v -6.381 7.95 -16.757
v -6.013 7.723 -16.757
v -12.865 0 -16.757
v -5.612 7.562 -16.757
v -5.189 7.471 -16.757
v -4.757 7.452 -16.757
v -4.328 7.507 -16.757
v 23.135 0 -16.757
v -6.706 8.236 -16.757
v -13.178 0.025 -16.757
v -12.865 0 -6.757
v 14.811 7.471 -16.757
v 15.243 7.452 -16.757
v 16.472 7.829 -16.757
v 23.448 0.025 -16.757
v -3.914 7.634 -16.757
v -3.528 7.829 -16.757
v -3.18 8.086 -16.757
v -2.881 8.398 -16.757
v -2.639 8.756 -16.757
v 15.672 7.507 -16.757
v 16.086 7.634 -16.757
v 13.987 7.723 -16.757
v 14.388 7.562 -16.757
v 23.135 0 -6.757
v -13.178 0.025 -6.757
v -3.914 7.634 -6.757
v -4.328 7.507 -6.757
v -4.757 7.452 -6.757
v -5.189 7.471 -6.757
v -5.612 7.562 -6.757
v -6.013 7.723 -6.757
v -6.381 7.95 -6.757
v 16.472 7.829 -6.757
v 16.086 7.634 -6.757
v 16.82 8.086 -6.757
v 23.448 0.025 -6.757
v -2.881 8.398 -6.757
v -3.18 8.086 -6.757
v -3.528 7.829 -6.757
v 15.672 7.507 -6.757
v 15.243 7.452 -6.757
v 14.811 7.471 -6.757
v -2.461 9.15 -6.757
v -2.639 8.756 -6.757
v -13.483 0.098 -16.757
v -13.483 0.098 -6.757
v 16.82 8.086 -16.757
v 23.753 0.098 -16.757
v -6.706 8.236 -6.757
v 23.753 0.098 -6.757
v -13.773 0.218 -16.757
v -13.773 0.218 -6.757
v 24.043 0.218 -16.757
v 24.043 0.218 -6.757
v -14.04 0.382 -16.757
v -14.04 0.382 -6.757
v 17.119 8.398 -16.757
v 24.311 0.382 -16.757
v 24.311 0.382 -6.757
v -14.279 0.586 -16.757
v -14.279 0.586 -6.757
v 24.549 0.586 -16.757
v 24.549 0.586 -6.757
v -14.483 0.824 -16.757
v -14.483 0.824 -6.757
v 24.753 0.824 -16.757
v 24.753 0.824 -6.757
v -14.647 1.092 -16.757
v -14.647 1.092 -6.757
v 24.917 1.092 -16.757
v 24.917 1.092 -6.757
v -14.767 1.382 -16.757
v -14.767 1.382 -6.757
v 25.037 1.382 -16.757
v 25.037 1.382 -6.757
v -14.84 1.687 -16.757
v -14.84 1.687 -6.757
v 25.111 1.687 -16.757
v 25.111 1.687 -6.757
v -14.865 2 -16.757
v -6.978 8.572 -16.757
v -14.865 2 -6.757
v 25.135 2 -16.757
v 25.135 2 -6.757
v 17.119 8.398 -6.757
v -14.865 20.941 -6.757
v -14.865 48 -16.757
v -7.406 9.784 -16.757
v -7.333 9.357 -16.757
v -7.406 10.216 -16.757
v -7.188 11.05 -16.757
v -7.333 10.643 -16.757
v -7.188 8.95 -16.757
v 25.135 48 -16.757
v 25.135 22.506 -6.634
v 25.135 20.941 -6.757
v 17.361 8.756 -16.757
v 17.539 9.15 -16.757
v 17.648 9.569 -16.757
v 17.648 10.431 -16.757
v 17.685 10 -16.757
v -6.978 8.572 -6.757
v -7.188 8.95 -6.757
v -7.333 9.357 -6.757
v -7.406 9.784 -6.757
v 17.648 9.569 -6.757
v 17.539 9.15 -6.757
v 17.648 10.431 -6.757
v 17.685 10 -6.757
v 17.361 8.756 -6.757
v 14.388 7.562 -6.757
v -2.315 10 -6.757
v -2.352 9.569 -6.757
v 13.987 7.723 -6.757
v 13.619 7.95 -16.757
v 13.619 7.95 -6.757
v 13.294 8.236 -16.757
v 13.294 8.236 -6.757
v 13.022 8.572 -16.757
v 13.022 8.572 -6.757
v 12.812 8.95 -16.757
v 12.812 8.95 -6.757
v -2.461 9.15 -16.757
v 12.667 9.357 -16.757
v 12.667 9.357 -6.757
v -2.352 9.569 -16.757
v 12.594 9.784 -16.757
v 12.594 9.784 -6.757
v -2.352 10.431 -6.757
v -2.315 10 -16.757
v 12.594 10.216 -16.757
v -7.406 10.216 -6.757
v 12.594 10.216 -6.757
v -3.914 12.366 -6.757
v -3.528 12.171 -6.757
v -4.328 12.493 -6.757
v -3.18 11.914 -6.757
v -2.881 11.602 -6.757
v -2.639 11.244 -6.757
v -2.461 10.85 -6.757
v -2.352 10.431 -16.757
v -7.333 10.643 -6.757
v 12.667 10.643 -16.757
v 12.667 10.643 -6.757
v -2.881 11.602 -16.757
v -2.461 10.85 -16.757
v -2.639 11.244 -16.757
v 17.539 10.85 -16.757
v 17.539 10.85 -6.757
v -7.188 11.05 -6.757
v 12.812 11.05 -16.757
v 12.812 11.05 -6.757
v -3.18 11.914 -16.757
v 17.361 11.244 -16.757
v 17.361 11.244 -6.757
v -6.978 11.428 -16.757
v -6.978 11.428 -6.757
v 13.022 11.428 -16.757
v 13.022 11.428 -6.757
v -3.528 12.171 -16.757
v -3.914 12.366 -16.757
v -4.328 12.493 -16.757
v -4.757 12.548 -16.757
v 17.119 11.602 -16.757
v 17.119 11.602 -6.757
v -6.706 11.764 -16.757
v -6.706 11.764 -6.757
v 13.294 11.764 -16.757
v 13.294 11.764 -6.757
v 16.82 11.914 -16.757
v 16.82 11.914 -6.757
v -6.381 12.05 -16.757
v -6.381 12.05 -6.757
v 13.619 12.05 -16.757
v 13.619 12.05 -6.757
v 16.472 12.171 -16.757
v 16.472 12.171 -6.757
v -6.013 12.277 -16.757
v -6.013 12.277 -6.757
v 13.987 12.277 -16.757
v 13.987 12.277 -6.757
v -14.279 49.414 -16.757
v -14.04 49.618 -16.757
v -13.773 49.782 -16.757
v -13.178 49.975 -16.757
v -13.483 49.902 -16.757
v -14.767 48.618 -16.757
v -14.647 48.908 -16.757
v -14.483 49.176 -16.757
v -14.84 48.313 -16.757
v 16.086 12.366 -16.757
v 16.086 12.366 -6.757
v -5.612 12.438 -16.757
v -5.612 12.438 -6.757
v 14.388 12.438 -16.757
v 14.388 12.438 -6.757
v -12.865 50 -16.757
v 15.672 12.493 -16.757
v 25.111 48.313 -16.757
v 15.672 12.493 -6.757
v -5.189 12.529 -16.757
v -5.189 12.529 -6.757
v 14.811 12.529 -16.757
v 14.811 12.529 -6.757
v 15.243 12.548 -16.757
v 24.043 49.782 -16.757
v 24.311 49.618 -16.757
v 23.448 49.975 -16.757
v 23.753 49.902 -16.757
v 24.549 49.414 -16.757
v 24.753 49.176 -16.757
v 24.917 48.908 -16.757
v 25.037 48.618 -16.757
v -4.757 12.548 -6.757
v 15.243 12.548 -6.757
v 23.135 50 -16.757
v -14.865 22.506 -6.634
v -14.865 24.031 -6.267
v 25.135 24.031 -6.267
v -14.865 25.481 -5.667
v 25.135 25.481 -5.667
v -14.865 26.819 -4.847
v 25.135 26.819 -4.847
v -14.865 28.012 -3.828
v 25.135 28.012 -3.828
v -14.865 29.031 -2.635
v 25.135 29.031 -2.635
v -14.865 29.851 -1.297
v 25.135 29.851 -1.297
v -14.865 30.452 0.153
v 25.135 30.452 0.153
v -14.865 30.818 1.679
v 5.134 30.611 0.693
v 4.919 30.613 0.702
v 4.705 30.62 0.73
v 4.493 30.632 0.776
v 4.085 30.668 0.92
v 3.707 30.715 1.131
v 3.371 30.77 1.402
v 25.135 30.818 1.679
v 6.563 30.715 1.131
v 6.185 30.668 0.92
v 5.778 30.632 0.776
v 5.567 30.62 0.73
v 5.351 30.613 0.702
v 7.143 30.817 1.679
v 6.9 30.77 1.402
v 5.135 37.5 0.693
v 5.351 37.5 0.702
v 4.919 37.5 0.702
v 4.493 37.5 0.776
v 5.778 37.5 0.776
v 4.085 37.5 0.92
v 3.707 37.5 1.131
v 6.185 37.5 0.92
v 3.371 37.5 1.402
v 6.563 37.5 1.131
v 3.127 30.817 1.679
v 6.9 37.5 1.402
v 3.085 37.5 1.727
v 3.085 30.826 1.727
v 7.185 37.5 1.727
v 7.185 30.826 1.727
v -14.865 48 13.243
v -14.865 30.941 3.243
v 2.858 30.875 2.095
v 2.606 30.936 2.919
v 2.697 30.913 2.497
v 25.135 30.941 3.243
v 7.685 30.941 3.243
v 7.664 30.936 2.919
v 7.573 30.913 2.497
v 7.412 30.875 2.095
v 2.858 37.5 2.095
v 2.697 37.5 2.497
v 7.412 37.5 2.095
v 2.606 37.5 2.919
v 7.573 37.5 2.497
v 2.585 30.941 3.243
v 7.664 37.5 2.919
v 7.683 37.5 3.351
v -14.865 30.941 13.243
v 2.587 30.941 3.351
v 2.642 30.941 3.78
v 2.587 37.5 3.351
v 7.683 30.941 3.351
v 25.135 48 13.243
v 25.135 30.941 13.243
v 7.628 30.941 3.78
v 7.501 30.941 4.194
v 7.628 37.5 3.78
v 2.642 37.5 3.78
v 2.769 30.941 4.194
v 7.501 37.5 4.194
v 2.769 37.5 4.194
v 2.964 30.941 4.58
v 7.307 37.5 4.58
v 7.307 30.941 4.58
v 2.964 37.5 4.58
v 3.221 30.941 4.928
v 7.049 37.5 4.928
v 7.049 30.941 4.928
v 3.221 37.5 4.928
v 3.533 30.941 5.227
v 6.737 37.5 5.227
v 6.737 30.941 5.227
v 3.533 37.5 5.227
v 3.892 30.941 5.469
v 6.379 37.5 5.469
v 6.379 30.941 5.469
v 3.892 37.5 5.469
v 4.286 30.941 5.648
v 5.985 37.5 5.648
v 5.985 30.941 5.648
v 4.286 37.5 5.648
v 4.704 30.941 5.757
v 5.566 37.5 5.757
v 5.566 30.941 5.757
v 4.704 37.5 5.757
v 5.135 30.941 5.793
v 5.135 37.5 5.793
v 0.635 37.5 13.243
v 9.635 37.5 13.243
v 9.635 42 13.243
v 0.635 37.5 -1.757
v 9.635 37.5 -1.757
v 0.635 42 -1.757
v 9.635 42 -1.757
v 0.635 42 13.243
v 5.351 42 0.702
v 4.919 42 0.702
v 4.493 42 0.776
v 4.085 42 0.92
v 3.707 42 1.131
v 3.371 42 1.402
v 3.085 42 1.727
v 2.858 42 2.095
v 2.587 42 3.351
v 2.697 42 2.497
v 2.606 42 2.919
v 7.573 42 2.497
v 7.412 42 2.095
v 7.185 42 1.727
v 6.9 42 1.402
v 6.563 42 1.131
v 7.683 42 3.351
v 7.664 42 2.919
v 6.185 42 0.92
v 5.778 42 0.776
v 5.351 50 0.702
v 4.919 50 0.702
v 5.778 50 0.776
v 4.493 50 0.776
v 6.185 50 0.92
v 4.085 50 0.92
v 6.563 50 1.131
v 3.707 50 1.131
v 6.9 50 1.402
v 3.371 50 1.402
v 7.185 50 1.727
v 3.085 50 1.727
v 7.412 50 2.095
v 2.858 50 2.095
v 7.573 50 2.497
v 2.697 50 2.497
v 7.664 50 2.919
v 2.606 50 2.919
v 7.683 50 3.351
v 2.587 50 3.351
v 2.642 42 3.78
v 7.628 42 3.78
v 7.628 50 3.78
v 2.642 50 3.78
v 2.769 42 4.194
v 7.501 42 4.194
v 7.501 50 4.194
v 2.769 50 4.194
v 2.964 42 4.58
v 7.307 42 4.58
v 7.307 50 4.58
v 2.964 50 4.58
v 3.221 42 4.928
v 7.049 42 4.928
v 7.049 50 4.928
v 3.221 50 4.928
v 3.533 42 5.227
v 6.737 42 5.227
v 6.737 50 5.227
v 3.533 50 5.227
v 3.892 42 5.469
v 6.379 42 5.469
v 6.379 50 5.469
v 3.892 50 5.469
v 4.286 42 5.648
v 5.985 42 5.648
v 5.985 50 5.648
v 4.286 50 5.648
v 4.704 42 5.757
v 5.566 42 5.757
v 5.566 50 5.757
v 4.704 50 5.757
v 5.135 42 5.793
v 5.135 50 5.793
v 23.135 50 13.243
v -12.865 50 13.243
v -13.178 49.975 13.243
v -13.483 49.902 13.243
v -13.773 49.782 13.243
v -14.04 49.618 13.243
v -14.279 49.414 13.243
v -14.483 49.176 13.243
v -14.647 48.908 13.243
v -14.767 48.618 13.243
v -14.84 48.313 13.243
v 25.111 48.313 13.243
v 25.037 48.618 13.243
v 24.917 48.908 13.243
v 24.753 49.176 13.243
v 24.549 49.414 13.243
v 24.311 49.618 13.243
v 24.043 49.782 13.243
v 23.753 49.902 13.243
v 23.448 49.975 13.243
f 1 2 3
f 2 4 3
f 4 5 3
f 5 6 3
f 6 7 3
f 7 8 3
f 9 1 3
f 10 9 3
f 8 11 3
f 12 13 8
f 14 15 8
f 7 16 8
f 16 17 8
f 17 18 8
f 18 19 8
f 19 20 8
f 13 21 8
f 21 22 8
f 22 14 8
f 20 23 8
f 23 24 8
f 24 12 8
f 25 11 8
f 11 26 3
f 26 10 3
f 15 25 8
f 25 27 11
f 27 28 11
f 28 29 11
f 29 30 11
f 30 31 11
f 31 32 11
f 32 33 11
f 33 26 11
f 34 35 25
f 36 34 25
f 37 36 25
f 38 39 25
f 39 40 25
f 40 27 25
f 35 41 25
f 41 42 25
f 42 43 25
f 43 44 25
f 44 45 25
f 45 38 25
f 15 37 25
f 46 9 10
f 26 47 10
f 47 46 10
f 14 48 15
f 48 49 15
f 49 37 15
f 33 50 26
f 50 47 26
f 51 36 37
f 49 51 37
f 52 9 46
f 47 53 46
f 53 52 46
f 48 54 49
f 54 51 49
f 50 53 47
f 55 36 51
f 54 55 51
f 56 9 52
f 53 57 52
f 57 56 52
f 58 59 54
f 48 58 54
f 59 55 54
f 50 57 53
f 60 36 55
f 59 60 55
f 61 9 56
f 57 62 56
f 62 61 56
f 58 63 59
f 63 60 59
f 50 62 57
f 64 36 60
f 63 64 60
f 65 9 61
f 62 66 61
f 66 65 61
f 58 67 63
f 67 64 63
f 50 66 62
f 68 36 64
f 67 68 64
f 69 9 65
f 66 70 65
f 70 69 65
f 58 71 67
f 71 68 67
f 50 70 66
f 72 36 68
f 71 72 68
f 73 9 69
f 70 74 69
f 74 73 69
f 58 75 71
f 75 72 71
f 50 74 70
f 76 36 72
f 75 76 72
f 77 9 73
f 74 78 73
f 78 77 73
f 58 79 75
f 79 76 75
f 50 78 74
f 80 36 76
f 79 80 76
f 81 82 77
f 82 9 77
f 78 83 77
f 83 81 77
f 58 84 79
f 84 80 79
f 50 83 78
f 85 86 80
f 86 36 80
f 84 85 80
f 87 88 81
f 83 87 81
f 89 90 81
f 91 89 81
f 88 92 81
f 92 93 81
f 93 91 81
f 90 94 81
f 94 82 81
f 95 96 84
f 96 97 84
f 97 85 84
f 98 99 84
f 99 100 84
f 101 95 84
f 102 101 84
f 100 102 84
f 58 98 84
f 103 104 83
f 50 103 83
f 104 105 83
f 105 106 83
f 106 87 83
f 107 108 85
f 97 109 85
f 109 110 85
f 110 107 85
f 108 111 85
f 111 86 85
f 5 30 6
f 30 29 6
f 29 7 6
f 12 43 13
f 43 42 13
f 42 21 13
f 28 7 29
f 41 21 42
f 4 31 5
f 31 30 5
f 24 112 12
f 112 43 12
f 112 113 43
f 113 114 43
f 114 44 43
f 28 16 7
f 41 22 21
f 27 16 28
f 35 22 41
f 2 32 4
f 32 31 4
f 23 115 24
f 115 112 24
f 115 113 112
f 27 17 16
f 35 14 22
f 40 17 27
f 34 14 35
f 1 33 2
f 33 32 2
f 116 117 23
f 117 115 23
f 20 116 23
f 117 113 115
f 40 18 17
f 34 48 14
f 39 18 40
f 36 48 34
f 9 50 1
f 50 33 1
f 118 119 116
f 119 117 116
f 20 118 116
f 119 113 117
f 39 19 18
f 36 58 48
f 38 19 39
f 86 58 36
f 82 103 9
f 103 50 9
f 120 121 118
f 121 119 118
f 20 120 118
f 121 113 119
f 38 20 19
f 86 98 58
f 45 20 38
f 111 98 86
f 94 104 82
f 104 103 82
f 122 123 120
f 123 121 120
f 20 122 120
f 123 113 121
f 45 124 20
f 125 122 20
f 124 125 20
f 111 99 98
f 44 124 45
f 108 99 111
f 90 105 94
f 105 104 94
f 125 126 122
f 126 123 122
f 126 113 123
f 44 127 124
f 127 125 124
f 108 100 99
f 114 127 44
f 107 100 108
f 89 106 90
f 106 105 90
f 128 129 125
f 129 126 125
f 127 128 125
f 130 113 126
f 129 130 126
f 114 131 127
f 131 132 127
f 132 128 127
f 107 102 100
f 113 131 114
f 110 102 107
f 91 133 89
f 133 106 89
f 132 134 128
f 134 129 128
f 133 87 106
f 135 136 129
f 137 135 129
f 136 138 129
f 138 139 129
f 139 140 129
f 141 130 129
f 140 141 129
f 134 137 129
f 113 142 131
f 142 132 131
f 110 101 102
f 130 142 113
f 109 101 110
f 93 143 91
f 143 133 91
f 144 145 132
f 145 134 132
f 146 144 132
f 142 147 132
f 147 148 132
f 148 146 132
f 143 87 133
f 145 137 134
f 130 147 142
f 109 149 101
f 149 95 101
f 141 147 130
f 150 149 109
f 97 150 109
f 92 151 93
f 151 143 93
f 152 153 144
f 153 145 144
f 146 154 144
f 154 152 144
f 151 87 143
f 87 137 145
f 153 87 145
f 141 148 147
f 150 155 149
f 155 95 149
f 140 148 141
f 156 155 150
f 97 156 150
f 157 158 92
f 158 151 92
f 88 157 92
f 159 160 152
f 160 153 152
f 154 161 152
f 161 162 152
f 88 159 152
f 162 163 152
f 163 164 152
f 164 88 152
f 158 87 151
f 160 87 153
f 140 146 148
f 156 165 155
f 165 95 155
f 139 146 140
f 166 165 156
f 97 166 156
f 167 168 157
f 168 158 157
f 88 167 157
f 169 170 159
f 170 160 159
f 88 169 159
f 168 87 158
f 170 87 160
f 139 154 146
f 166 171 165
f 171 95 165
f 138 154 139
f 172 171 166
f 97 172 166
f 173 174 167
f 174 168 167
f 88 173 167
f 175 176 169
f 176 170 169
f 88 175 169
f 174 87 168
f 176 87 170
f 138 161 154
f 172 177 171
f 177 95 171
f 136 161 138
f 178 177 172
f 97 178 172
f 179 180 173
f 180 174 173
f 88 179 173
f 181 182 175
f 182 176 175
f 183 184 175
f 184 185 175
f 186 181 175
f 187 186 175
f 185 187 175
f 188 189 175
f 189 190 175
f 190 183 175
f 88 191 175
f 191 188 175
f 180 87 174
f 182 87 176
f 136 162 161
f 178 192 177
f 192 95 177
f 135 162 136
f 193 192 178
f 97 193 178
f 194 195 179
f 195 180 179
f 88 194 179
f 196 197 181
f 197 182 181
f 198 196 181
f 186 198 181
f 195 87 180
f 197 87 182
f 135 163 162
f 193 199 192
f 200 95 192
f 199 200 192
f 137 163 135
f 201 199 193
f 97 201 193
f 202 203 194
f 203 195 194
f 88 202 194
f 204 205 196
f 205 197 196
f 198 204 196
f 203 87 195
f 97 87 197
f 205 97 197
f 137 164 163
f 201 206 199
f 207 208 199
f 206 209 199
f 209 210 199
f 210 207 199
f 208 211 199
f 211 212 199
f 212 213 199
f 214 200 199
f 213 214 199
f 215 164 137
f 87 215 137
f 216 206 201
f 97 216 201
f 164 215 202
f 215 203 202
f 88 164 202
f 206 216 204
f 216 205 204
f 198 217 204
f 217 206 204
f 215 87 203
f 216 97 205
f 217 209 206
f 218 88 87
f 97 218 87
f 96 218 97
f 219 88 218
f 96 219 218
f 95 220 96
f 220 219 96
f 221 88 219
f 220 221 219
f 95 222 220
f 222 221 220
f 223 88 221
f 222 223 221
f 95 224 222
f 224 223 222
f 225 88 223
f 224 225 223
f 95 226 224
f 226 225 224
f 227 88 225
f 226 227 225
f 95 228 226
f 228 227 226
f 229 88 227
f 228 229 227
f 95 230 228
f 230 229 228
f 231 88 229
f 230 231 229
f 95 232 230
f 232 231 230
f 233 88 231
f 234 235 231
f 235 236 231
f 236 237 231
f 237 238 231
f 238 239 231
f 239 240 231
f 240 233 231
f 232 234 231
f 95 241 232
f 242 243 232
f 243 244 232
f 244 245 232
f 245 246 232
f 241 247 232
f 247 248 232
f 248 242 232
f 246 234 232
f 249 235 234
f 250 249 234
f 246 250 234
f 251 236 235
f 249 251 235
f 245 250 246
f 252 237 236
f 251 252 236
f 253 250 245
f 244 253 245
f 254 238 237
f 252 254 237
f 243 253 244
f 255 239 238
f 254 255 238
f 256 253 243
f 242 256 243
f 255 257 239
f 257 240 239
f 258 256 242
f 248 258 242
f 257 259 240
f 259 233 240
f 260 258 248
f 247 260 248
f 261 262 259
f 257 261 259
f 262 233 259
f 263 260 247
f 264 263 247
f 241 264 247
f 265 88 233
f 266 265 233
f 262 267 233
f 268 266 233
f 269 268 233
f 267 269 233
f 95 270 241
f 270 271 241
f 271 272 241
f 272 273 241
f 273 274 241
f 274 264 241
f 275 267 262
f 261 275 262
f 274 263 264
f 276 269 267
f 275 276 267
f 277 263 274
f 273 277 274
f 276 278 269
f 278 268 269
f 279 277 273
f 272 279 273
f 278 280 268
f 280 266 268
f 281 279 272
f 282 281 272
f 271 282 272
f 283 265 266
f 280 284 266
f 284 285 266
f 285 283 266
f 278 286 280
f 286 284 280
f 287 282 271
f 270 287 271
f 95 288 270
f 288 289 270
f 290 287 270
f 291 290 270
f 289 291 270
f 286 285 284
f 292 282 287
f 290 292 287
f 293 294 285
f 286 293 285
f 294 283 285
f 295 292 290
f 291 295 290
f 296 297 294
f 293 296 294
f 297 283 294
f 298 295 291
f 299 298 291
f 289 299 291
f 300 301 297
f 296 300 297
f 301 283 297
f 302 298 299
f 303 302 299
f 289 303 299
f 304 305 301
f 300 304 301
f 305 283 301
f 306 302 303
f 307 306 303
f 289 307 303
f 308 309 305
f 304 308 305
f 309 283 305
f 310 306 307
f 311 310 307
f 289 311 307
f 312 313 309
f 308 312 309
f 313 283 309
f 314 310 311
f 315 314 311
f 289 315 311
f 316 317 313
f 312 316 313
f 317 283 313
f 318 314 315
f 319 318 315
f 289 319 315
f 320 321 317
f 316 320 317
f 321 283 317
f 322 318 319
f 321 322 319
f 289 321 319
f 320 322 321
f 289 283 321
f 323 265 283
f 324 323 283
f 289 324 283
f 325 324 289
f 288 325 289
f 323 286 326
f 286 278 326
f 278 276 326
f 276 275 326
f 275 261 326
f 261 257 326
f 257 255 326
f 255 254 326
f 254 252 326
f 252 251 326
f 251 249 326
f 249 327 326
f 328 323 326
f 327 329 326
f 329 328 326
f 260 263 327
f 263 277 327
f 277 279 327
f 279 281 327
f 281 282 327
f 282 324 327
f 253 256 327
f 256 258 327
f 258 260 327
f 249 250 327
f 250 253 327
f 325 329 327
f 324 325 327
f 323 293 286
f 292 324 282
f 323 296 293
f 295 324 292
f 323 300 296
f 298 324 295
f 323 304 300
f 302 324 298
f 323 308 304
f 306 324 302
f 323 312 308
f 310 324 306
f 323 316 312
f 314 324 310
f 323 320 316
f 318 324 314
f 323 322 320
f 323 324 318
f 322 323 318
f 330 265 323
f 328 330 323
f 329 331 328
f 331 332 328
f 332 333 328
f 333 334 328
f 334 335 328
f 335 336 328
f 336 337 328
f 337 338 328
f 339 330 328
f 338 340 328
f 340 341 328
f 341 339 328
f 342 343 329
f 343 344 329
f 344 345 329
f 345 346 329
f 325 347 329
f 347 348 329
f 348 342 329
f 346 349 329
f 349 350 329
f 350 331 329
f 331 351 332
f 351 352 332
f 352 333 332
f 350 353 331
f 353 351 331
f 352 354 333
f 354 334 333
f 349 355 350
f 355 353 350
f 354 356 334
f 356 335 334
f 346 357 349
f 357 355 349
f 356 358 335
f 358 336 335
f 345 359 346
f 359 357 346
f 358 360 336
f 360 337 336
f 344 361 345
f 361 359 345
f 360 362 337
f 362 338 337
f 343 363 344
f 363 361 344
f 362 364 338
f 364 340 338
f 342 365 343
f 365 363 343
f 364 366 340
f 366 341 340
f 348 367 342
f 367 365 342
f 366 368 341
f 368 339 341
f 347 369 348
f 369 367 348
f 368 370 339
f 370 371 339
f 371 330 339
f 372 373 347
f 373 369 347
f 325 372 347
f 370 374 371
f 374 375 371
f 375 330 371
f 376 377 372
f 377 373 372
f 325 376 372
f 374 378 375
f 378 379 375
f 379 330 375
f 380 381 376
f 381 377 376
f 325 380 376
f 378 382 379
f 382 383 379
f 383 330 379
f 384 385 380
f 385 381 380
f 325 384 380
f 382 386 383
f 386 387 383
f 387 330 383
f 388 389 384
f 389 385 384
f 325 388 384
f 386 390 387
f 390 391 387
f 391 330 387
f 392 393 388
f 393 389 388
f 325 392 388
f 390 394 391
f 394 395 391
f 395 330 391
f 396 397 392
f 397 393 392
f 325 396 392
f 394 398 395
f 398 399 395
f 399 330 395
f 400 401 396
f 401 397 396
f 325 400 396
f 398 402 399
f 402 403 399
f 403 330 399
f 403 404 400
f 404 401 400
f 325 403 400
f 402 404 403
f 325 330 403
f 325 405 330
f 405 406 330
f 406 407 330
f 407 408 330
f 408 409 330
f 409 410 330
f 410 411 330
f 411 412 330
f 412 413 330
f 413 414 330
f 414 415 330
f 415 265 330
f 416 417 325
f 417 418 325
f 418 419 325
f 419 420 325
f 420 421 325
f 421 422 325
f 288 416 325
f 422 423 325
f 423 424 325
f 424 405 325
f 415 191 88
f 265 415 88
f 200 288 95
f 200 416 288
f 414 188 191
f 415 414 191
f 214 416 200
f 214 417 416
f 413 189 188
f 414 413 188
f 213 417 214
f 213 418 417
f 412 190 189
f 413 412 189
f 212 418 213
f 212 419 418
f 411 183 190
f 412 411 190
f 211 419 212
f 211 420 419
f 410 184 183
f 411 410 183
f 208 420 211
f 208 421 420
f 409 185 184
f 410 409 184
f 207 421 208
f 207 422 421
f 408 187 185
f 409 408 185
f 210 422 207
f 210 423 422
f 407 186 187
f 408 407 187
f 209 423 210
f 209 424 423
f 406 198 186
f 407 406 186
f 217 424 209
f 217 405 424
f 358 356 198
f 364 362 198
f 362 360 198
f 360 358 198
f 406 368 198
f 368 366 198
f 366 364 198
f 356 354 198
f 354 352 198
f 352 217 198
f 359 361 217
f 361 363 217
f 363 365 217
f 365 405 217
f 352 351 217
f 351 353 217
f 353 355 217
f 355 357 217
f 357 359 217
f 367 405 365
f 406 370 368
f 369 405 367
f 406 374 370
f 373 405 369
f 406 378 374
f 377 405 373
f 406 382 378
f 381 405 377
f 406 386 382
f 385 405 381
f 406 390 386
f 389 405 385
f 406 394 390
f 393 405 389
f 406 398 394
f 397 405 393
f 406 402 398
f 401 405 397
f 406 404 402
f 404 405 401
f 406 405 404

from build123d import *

# Parameters (mm, degrees)
SKETCH_1_W          = 40
SKETCH_1_H          = 30
EXTRUDE_1_DEPTH     = 50
SKETCH_2_R          = 2.55
CUT_EXTRUDE_1_DEPTH = 64.496259876
SKETCH_3_R          = 4.5
CUT_EXTRUDE_2_DEPTH = 20
SKETCH_4_R          = 2.55
CUT_EXTRUDE_3_DEPTH = 59.417154289
SKETCH_5_W          = 9
SKETCH_5_H          = 4.5
CUT_EXTRUDE_4_DEPTH = 15
SKETCH_7_W          = 40
SKETCH_7_H          = 30.941216598
CUT_EXTRUDE_5_DEPTH = 20
FILLET_1_R          = 10
FILLET_2_R          = 2


with BuildPart() as part:
    # 草图1 → 凸台-拉伸1 (new body)
    with BuildSketch(Plane(origin=(0, 0, 0), x_dir=(1, 0, 0), z_dir=(0, 1, 0))):
        with Locations((5.135135135, 1.756756757)):
            Rectangle(SKETCH_1_W, SKETCH_1_H)
    extrude(amount=EXTRUDE_1_DEPTH)

    # 草图2 → 切除-拉伸1 (cut, through all)
    with BuildSketch(Plane.XY.offset(13.243243243)):
        with Locations((-4.864864865, 10)):
            Circle(SKETCH_2_R)
        with Locations((15.135135135, 10)):
            Circle(SKETCH_2_R)
    extrude(amount=-CUT_EXTRUDE_1_DEPTH, mode=Mode.SUBTRACT)

    # 草图3 → 切除-拉伸2 (cut)
    with BuildSketch(Plane.XY.offset(13.243243243)):
        with Locations((-4.864864865, 10)):
            Circle(SKETCH_3_R)
        with Locations((15.135135135, 10)):
            Circle(SKETCH_3_R)
    extrude(amount=-CUT_EXTRUDE_2_DEPTH, mode=Mode.SUBTRACT)

    # 草图4 → 切除-拉伸3 (cut, through all)
    with BuildSketch(Plane(origin=(0, 50, 0), x_dir=(1, 0, 0), z_dir=(0, 1, 0))):
        with Locations(Location((5.135135135, -3.243243243, 0), (0, 0, 270))):
            Circle(SKETCH_4_R)
    extrude(amount=-CUT_EXTRUDE_3_DEPTH, mode=Mode.SUBTRACT)

    # 草图5 → 切除-拉伸4 (cut)
    with BuildSketch(Plane.XY.offset(13.243243243)):
        with Locations((5.135135135, 39.75)):
            Rectangle(SKETCH_5_W, SKETCH_5_H)
    extrude(amount=-CUT_EXTRUDE_4_DEPTH, mode=Mode.SUBTRACT)

    # 草图7 → 切除-拉伸5 (cut)
    with BuildSketch(Plane.XY.offset(13.243243243)):
        with Locations((5.135135135, 15.470608299)):
            Rectangle(SKETCH_7_W, SKETCH_7_H)
    extrude(amount=-CUT_EXTRUDE_5_DEPTH, mode=Mode.SUBTRACT)

    # 圆角1
    # the kernel refuses this fillet: 10 mm, written as the material it adds along each edge
    with BuildSketch(Plane(origin=(25.135135135, 30.941216598, -6.756756757), x_dir=(0, 0, 1), z_dir=(-1, 0, 0))) as fillet_1_piece_1_section:
        with BuildLine():
            CenterArc((FILLET_1_R, -FILLET_1_R), FILLET_1_R, 90, 90)
            Line((0, -FILLET_1_R), (0, 0))
            Line((0, 0), (FILLET_1_R, 0))
        make_face()
    fillet_1_piece_1 = extrude(amount=40, mode=Mode.PRIVATE)
    fillet_1_piece_1 = fillet_1_piece_1 - Plane(origin=(5.135135135, 28.670722108, 3.243243243), x_dir=(0, 0, 1), z_dir=(0, 1, 0)) * Cylinder(2.55, 120, mode=Mode.PRIVATE)
    add(fillet_1_piece_1)

    # 圆角2
    fillet_2_edges = [part.edges().sort_by_distance(p)[0] for p in [
        (25.135135135, 50, -1.756756757),
        (-14.864864865, 50, -1.756756757),
        (-14.864864865, 0, -11.756756757),
        (25.135135135, 0, -11.756756757),
    ]]
    fillet(fillet_2_edges, radius=FILLET_2_R)


solid = part.part
